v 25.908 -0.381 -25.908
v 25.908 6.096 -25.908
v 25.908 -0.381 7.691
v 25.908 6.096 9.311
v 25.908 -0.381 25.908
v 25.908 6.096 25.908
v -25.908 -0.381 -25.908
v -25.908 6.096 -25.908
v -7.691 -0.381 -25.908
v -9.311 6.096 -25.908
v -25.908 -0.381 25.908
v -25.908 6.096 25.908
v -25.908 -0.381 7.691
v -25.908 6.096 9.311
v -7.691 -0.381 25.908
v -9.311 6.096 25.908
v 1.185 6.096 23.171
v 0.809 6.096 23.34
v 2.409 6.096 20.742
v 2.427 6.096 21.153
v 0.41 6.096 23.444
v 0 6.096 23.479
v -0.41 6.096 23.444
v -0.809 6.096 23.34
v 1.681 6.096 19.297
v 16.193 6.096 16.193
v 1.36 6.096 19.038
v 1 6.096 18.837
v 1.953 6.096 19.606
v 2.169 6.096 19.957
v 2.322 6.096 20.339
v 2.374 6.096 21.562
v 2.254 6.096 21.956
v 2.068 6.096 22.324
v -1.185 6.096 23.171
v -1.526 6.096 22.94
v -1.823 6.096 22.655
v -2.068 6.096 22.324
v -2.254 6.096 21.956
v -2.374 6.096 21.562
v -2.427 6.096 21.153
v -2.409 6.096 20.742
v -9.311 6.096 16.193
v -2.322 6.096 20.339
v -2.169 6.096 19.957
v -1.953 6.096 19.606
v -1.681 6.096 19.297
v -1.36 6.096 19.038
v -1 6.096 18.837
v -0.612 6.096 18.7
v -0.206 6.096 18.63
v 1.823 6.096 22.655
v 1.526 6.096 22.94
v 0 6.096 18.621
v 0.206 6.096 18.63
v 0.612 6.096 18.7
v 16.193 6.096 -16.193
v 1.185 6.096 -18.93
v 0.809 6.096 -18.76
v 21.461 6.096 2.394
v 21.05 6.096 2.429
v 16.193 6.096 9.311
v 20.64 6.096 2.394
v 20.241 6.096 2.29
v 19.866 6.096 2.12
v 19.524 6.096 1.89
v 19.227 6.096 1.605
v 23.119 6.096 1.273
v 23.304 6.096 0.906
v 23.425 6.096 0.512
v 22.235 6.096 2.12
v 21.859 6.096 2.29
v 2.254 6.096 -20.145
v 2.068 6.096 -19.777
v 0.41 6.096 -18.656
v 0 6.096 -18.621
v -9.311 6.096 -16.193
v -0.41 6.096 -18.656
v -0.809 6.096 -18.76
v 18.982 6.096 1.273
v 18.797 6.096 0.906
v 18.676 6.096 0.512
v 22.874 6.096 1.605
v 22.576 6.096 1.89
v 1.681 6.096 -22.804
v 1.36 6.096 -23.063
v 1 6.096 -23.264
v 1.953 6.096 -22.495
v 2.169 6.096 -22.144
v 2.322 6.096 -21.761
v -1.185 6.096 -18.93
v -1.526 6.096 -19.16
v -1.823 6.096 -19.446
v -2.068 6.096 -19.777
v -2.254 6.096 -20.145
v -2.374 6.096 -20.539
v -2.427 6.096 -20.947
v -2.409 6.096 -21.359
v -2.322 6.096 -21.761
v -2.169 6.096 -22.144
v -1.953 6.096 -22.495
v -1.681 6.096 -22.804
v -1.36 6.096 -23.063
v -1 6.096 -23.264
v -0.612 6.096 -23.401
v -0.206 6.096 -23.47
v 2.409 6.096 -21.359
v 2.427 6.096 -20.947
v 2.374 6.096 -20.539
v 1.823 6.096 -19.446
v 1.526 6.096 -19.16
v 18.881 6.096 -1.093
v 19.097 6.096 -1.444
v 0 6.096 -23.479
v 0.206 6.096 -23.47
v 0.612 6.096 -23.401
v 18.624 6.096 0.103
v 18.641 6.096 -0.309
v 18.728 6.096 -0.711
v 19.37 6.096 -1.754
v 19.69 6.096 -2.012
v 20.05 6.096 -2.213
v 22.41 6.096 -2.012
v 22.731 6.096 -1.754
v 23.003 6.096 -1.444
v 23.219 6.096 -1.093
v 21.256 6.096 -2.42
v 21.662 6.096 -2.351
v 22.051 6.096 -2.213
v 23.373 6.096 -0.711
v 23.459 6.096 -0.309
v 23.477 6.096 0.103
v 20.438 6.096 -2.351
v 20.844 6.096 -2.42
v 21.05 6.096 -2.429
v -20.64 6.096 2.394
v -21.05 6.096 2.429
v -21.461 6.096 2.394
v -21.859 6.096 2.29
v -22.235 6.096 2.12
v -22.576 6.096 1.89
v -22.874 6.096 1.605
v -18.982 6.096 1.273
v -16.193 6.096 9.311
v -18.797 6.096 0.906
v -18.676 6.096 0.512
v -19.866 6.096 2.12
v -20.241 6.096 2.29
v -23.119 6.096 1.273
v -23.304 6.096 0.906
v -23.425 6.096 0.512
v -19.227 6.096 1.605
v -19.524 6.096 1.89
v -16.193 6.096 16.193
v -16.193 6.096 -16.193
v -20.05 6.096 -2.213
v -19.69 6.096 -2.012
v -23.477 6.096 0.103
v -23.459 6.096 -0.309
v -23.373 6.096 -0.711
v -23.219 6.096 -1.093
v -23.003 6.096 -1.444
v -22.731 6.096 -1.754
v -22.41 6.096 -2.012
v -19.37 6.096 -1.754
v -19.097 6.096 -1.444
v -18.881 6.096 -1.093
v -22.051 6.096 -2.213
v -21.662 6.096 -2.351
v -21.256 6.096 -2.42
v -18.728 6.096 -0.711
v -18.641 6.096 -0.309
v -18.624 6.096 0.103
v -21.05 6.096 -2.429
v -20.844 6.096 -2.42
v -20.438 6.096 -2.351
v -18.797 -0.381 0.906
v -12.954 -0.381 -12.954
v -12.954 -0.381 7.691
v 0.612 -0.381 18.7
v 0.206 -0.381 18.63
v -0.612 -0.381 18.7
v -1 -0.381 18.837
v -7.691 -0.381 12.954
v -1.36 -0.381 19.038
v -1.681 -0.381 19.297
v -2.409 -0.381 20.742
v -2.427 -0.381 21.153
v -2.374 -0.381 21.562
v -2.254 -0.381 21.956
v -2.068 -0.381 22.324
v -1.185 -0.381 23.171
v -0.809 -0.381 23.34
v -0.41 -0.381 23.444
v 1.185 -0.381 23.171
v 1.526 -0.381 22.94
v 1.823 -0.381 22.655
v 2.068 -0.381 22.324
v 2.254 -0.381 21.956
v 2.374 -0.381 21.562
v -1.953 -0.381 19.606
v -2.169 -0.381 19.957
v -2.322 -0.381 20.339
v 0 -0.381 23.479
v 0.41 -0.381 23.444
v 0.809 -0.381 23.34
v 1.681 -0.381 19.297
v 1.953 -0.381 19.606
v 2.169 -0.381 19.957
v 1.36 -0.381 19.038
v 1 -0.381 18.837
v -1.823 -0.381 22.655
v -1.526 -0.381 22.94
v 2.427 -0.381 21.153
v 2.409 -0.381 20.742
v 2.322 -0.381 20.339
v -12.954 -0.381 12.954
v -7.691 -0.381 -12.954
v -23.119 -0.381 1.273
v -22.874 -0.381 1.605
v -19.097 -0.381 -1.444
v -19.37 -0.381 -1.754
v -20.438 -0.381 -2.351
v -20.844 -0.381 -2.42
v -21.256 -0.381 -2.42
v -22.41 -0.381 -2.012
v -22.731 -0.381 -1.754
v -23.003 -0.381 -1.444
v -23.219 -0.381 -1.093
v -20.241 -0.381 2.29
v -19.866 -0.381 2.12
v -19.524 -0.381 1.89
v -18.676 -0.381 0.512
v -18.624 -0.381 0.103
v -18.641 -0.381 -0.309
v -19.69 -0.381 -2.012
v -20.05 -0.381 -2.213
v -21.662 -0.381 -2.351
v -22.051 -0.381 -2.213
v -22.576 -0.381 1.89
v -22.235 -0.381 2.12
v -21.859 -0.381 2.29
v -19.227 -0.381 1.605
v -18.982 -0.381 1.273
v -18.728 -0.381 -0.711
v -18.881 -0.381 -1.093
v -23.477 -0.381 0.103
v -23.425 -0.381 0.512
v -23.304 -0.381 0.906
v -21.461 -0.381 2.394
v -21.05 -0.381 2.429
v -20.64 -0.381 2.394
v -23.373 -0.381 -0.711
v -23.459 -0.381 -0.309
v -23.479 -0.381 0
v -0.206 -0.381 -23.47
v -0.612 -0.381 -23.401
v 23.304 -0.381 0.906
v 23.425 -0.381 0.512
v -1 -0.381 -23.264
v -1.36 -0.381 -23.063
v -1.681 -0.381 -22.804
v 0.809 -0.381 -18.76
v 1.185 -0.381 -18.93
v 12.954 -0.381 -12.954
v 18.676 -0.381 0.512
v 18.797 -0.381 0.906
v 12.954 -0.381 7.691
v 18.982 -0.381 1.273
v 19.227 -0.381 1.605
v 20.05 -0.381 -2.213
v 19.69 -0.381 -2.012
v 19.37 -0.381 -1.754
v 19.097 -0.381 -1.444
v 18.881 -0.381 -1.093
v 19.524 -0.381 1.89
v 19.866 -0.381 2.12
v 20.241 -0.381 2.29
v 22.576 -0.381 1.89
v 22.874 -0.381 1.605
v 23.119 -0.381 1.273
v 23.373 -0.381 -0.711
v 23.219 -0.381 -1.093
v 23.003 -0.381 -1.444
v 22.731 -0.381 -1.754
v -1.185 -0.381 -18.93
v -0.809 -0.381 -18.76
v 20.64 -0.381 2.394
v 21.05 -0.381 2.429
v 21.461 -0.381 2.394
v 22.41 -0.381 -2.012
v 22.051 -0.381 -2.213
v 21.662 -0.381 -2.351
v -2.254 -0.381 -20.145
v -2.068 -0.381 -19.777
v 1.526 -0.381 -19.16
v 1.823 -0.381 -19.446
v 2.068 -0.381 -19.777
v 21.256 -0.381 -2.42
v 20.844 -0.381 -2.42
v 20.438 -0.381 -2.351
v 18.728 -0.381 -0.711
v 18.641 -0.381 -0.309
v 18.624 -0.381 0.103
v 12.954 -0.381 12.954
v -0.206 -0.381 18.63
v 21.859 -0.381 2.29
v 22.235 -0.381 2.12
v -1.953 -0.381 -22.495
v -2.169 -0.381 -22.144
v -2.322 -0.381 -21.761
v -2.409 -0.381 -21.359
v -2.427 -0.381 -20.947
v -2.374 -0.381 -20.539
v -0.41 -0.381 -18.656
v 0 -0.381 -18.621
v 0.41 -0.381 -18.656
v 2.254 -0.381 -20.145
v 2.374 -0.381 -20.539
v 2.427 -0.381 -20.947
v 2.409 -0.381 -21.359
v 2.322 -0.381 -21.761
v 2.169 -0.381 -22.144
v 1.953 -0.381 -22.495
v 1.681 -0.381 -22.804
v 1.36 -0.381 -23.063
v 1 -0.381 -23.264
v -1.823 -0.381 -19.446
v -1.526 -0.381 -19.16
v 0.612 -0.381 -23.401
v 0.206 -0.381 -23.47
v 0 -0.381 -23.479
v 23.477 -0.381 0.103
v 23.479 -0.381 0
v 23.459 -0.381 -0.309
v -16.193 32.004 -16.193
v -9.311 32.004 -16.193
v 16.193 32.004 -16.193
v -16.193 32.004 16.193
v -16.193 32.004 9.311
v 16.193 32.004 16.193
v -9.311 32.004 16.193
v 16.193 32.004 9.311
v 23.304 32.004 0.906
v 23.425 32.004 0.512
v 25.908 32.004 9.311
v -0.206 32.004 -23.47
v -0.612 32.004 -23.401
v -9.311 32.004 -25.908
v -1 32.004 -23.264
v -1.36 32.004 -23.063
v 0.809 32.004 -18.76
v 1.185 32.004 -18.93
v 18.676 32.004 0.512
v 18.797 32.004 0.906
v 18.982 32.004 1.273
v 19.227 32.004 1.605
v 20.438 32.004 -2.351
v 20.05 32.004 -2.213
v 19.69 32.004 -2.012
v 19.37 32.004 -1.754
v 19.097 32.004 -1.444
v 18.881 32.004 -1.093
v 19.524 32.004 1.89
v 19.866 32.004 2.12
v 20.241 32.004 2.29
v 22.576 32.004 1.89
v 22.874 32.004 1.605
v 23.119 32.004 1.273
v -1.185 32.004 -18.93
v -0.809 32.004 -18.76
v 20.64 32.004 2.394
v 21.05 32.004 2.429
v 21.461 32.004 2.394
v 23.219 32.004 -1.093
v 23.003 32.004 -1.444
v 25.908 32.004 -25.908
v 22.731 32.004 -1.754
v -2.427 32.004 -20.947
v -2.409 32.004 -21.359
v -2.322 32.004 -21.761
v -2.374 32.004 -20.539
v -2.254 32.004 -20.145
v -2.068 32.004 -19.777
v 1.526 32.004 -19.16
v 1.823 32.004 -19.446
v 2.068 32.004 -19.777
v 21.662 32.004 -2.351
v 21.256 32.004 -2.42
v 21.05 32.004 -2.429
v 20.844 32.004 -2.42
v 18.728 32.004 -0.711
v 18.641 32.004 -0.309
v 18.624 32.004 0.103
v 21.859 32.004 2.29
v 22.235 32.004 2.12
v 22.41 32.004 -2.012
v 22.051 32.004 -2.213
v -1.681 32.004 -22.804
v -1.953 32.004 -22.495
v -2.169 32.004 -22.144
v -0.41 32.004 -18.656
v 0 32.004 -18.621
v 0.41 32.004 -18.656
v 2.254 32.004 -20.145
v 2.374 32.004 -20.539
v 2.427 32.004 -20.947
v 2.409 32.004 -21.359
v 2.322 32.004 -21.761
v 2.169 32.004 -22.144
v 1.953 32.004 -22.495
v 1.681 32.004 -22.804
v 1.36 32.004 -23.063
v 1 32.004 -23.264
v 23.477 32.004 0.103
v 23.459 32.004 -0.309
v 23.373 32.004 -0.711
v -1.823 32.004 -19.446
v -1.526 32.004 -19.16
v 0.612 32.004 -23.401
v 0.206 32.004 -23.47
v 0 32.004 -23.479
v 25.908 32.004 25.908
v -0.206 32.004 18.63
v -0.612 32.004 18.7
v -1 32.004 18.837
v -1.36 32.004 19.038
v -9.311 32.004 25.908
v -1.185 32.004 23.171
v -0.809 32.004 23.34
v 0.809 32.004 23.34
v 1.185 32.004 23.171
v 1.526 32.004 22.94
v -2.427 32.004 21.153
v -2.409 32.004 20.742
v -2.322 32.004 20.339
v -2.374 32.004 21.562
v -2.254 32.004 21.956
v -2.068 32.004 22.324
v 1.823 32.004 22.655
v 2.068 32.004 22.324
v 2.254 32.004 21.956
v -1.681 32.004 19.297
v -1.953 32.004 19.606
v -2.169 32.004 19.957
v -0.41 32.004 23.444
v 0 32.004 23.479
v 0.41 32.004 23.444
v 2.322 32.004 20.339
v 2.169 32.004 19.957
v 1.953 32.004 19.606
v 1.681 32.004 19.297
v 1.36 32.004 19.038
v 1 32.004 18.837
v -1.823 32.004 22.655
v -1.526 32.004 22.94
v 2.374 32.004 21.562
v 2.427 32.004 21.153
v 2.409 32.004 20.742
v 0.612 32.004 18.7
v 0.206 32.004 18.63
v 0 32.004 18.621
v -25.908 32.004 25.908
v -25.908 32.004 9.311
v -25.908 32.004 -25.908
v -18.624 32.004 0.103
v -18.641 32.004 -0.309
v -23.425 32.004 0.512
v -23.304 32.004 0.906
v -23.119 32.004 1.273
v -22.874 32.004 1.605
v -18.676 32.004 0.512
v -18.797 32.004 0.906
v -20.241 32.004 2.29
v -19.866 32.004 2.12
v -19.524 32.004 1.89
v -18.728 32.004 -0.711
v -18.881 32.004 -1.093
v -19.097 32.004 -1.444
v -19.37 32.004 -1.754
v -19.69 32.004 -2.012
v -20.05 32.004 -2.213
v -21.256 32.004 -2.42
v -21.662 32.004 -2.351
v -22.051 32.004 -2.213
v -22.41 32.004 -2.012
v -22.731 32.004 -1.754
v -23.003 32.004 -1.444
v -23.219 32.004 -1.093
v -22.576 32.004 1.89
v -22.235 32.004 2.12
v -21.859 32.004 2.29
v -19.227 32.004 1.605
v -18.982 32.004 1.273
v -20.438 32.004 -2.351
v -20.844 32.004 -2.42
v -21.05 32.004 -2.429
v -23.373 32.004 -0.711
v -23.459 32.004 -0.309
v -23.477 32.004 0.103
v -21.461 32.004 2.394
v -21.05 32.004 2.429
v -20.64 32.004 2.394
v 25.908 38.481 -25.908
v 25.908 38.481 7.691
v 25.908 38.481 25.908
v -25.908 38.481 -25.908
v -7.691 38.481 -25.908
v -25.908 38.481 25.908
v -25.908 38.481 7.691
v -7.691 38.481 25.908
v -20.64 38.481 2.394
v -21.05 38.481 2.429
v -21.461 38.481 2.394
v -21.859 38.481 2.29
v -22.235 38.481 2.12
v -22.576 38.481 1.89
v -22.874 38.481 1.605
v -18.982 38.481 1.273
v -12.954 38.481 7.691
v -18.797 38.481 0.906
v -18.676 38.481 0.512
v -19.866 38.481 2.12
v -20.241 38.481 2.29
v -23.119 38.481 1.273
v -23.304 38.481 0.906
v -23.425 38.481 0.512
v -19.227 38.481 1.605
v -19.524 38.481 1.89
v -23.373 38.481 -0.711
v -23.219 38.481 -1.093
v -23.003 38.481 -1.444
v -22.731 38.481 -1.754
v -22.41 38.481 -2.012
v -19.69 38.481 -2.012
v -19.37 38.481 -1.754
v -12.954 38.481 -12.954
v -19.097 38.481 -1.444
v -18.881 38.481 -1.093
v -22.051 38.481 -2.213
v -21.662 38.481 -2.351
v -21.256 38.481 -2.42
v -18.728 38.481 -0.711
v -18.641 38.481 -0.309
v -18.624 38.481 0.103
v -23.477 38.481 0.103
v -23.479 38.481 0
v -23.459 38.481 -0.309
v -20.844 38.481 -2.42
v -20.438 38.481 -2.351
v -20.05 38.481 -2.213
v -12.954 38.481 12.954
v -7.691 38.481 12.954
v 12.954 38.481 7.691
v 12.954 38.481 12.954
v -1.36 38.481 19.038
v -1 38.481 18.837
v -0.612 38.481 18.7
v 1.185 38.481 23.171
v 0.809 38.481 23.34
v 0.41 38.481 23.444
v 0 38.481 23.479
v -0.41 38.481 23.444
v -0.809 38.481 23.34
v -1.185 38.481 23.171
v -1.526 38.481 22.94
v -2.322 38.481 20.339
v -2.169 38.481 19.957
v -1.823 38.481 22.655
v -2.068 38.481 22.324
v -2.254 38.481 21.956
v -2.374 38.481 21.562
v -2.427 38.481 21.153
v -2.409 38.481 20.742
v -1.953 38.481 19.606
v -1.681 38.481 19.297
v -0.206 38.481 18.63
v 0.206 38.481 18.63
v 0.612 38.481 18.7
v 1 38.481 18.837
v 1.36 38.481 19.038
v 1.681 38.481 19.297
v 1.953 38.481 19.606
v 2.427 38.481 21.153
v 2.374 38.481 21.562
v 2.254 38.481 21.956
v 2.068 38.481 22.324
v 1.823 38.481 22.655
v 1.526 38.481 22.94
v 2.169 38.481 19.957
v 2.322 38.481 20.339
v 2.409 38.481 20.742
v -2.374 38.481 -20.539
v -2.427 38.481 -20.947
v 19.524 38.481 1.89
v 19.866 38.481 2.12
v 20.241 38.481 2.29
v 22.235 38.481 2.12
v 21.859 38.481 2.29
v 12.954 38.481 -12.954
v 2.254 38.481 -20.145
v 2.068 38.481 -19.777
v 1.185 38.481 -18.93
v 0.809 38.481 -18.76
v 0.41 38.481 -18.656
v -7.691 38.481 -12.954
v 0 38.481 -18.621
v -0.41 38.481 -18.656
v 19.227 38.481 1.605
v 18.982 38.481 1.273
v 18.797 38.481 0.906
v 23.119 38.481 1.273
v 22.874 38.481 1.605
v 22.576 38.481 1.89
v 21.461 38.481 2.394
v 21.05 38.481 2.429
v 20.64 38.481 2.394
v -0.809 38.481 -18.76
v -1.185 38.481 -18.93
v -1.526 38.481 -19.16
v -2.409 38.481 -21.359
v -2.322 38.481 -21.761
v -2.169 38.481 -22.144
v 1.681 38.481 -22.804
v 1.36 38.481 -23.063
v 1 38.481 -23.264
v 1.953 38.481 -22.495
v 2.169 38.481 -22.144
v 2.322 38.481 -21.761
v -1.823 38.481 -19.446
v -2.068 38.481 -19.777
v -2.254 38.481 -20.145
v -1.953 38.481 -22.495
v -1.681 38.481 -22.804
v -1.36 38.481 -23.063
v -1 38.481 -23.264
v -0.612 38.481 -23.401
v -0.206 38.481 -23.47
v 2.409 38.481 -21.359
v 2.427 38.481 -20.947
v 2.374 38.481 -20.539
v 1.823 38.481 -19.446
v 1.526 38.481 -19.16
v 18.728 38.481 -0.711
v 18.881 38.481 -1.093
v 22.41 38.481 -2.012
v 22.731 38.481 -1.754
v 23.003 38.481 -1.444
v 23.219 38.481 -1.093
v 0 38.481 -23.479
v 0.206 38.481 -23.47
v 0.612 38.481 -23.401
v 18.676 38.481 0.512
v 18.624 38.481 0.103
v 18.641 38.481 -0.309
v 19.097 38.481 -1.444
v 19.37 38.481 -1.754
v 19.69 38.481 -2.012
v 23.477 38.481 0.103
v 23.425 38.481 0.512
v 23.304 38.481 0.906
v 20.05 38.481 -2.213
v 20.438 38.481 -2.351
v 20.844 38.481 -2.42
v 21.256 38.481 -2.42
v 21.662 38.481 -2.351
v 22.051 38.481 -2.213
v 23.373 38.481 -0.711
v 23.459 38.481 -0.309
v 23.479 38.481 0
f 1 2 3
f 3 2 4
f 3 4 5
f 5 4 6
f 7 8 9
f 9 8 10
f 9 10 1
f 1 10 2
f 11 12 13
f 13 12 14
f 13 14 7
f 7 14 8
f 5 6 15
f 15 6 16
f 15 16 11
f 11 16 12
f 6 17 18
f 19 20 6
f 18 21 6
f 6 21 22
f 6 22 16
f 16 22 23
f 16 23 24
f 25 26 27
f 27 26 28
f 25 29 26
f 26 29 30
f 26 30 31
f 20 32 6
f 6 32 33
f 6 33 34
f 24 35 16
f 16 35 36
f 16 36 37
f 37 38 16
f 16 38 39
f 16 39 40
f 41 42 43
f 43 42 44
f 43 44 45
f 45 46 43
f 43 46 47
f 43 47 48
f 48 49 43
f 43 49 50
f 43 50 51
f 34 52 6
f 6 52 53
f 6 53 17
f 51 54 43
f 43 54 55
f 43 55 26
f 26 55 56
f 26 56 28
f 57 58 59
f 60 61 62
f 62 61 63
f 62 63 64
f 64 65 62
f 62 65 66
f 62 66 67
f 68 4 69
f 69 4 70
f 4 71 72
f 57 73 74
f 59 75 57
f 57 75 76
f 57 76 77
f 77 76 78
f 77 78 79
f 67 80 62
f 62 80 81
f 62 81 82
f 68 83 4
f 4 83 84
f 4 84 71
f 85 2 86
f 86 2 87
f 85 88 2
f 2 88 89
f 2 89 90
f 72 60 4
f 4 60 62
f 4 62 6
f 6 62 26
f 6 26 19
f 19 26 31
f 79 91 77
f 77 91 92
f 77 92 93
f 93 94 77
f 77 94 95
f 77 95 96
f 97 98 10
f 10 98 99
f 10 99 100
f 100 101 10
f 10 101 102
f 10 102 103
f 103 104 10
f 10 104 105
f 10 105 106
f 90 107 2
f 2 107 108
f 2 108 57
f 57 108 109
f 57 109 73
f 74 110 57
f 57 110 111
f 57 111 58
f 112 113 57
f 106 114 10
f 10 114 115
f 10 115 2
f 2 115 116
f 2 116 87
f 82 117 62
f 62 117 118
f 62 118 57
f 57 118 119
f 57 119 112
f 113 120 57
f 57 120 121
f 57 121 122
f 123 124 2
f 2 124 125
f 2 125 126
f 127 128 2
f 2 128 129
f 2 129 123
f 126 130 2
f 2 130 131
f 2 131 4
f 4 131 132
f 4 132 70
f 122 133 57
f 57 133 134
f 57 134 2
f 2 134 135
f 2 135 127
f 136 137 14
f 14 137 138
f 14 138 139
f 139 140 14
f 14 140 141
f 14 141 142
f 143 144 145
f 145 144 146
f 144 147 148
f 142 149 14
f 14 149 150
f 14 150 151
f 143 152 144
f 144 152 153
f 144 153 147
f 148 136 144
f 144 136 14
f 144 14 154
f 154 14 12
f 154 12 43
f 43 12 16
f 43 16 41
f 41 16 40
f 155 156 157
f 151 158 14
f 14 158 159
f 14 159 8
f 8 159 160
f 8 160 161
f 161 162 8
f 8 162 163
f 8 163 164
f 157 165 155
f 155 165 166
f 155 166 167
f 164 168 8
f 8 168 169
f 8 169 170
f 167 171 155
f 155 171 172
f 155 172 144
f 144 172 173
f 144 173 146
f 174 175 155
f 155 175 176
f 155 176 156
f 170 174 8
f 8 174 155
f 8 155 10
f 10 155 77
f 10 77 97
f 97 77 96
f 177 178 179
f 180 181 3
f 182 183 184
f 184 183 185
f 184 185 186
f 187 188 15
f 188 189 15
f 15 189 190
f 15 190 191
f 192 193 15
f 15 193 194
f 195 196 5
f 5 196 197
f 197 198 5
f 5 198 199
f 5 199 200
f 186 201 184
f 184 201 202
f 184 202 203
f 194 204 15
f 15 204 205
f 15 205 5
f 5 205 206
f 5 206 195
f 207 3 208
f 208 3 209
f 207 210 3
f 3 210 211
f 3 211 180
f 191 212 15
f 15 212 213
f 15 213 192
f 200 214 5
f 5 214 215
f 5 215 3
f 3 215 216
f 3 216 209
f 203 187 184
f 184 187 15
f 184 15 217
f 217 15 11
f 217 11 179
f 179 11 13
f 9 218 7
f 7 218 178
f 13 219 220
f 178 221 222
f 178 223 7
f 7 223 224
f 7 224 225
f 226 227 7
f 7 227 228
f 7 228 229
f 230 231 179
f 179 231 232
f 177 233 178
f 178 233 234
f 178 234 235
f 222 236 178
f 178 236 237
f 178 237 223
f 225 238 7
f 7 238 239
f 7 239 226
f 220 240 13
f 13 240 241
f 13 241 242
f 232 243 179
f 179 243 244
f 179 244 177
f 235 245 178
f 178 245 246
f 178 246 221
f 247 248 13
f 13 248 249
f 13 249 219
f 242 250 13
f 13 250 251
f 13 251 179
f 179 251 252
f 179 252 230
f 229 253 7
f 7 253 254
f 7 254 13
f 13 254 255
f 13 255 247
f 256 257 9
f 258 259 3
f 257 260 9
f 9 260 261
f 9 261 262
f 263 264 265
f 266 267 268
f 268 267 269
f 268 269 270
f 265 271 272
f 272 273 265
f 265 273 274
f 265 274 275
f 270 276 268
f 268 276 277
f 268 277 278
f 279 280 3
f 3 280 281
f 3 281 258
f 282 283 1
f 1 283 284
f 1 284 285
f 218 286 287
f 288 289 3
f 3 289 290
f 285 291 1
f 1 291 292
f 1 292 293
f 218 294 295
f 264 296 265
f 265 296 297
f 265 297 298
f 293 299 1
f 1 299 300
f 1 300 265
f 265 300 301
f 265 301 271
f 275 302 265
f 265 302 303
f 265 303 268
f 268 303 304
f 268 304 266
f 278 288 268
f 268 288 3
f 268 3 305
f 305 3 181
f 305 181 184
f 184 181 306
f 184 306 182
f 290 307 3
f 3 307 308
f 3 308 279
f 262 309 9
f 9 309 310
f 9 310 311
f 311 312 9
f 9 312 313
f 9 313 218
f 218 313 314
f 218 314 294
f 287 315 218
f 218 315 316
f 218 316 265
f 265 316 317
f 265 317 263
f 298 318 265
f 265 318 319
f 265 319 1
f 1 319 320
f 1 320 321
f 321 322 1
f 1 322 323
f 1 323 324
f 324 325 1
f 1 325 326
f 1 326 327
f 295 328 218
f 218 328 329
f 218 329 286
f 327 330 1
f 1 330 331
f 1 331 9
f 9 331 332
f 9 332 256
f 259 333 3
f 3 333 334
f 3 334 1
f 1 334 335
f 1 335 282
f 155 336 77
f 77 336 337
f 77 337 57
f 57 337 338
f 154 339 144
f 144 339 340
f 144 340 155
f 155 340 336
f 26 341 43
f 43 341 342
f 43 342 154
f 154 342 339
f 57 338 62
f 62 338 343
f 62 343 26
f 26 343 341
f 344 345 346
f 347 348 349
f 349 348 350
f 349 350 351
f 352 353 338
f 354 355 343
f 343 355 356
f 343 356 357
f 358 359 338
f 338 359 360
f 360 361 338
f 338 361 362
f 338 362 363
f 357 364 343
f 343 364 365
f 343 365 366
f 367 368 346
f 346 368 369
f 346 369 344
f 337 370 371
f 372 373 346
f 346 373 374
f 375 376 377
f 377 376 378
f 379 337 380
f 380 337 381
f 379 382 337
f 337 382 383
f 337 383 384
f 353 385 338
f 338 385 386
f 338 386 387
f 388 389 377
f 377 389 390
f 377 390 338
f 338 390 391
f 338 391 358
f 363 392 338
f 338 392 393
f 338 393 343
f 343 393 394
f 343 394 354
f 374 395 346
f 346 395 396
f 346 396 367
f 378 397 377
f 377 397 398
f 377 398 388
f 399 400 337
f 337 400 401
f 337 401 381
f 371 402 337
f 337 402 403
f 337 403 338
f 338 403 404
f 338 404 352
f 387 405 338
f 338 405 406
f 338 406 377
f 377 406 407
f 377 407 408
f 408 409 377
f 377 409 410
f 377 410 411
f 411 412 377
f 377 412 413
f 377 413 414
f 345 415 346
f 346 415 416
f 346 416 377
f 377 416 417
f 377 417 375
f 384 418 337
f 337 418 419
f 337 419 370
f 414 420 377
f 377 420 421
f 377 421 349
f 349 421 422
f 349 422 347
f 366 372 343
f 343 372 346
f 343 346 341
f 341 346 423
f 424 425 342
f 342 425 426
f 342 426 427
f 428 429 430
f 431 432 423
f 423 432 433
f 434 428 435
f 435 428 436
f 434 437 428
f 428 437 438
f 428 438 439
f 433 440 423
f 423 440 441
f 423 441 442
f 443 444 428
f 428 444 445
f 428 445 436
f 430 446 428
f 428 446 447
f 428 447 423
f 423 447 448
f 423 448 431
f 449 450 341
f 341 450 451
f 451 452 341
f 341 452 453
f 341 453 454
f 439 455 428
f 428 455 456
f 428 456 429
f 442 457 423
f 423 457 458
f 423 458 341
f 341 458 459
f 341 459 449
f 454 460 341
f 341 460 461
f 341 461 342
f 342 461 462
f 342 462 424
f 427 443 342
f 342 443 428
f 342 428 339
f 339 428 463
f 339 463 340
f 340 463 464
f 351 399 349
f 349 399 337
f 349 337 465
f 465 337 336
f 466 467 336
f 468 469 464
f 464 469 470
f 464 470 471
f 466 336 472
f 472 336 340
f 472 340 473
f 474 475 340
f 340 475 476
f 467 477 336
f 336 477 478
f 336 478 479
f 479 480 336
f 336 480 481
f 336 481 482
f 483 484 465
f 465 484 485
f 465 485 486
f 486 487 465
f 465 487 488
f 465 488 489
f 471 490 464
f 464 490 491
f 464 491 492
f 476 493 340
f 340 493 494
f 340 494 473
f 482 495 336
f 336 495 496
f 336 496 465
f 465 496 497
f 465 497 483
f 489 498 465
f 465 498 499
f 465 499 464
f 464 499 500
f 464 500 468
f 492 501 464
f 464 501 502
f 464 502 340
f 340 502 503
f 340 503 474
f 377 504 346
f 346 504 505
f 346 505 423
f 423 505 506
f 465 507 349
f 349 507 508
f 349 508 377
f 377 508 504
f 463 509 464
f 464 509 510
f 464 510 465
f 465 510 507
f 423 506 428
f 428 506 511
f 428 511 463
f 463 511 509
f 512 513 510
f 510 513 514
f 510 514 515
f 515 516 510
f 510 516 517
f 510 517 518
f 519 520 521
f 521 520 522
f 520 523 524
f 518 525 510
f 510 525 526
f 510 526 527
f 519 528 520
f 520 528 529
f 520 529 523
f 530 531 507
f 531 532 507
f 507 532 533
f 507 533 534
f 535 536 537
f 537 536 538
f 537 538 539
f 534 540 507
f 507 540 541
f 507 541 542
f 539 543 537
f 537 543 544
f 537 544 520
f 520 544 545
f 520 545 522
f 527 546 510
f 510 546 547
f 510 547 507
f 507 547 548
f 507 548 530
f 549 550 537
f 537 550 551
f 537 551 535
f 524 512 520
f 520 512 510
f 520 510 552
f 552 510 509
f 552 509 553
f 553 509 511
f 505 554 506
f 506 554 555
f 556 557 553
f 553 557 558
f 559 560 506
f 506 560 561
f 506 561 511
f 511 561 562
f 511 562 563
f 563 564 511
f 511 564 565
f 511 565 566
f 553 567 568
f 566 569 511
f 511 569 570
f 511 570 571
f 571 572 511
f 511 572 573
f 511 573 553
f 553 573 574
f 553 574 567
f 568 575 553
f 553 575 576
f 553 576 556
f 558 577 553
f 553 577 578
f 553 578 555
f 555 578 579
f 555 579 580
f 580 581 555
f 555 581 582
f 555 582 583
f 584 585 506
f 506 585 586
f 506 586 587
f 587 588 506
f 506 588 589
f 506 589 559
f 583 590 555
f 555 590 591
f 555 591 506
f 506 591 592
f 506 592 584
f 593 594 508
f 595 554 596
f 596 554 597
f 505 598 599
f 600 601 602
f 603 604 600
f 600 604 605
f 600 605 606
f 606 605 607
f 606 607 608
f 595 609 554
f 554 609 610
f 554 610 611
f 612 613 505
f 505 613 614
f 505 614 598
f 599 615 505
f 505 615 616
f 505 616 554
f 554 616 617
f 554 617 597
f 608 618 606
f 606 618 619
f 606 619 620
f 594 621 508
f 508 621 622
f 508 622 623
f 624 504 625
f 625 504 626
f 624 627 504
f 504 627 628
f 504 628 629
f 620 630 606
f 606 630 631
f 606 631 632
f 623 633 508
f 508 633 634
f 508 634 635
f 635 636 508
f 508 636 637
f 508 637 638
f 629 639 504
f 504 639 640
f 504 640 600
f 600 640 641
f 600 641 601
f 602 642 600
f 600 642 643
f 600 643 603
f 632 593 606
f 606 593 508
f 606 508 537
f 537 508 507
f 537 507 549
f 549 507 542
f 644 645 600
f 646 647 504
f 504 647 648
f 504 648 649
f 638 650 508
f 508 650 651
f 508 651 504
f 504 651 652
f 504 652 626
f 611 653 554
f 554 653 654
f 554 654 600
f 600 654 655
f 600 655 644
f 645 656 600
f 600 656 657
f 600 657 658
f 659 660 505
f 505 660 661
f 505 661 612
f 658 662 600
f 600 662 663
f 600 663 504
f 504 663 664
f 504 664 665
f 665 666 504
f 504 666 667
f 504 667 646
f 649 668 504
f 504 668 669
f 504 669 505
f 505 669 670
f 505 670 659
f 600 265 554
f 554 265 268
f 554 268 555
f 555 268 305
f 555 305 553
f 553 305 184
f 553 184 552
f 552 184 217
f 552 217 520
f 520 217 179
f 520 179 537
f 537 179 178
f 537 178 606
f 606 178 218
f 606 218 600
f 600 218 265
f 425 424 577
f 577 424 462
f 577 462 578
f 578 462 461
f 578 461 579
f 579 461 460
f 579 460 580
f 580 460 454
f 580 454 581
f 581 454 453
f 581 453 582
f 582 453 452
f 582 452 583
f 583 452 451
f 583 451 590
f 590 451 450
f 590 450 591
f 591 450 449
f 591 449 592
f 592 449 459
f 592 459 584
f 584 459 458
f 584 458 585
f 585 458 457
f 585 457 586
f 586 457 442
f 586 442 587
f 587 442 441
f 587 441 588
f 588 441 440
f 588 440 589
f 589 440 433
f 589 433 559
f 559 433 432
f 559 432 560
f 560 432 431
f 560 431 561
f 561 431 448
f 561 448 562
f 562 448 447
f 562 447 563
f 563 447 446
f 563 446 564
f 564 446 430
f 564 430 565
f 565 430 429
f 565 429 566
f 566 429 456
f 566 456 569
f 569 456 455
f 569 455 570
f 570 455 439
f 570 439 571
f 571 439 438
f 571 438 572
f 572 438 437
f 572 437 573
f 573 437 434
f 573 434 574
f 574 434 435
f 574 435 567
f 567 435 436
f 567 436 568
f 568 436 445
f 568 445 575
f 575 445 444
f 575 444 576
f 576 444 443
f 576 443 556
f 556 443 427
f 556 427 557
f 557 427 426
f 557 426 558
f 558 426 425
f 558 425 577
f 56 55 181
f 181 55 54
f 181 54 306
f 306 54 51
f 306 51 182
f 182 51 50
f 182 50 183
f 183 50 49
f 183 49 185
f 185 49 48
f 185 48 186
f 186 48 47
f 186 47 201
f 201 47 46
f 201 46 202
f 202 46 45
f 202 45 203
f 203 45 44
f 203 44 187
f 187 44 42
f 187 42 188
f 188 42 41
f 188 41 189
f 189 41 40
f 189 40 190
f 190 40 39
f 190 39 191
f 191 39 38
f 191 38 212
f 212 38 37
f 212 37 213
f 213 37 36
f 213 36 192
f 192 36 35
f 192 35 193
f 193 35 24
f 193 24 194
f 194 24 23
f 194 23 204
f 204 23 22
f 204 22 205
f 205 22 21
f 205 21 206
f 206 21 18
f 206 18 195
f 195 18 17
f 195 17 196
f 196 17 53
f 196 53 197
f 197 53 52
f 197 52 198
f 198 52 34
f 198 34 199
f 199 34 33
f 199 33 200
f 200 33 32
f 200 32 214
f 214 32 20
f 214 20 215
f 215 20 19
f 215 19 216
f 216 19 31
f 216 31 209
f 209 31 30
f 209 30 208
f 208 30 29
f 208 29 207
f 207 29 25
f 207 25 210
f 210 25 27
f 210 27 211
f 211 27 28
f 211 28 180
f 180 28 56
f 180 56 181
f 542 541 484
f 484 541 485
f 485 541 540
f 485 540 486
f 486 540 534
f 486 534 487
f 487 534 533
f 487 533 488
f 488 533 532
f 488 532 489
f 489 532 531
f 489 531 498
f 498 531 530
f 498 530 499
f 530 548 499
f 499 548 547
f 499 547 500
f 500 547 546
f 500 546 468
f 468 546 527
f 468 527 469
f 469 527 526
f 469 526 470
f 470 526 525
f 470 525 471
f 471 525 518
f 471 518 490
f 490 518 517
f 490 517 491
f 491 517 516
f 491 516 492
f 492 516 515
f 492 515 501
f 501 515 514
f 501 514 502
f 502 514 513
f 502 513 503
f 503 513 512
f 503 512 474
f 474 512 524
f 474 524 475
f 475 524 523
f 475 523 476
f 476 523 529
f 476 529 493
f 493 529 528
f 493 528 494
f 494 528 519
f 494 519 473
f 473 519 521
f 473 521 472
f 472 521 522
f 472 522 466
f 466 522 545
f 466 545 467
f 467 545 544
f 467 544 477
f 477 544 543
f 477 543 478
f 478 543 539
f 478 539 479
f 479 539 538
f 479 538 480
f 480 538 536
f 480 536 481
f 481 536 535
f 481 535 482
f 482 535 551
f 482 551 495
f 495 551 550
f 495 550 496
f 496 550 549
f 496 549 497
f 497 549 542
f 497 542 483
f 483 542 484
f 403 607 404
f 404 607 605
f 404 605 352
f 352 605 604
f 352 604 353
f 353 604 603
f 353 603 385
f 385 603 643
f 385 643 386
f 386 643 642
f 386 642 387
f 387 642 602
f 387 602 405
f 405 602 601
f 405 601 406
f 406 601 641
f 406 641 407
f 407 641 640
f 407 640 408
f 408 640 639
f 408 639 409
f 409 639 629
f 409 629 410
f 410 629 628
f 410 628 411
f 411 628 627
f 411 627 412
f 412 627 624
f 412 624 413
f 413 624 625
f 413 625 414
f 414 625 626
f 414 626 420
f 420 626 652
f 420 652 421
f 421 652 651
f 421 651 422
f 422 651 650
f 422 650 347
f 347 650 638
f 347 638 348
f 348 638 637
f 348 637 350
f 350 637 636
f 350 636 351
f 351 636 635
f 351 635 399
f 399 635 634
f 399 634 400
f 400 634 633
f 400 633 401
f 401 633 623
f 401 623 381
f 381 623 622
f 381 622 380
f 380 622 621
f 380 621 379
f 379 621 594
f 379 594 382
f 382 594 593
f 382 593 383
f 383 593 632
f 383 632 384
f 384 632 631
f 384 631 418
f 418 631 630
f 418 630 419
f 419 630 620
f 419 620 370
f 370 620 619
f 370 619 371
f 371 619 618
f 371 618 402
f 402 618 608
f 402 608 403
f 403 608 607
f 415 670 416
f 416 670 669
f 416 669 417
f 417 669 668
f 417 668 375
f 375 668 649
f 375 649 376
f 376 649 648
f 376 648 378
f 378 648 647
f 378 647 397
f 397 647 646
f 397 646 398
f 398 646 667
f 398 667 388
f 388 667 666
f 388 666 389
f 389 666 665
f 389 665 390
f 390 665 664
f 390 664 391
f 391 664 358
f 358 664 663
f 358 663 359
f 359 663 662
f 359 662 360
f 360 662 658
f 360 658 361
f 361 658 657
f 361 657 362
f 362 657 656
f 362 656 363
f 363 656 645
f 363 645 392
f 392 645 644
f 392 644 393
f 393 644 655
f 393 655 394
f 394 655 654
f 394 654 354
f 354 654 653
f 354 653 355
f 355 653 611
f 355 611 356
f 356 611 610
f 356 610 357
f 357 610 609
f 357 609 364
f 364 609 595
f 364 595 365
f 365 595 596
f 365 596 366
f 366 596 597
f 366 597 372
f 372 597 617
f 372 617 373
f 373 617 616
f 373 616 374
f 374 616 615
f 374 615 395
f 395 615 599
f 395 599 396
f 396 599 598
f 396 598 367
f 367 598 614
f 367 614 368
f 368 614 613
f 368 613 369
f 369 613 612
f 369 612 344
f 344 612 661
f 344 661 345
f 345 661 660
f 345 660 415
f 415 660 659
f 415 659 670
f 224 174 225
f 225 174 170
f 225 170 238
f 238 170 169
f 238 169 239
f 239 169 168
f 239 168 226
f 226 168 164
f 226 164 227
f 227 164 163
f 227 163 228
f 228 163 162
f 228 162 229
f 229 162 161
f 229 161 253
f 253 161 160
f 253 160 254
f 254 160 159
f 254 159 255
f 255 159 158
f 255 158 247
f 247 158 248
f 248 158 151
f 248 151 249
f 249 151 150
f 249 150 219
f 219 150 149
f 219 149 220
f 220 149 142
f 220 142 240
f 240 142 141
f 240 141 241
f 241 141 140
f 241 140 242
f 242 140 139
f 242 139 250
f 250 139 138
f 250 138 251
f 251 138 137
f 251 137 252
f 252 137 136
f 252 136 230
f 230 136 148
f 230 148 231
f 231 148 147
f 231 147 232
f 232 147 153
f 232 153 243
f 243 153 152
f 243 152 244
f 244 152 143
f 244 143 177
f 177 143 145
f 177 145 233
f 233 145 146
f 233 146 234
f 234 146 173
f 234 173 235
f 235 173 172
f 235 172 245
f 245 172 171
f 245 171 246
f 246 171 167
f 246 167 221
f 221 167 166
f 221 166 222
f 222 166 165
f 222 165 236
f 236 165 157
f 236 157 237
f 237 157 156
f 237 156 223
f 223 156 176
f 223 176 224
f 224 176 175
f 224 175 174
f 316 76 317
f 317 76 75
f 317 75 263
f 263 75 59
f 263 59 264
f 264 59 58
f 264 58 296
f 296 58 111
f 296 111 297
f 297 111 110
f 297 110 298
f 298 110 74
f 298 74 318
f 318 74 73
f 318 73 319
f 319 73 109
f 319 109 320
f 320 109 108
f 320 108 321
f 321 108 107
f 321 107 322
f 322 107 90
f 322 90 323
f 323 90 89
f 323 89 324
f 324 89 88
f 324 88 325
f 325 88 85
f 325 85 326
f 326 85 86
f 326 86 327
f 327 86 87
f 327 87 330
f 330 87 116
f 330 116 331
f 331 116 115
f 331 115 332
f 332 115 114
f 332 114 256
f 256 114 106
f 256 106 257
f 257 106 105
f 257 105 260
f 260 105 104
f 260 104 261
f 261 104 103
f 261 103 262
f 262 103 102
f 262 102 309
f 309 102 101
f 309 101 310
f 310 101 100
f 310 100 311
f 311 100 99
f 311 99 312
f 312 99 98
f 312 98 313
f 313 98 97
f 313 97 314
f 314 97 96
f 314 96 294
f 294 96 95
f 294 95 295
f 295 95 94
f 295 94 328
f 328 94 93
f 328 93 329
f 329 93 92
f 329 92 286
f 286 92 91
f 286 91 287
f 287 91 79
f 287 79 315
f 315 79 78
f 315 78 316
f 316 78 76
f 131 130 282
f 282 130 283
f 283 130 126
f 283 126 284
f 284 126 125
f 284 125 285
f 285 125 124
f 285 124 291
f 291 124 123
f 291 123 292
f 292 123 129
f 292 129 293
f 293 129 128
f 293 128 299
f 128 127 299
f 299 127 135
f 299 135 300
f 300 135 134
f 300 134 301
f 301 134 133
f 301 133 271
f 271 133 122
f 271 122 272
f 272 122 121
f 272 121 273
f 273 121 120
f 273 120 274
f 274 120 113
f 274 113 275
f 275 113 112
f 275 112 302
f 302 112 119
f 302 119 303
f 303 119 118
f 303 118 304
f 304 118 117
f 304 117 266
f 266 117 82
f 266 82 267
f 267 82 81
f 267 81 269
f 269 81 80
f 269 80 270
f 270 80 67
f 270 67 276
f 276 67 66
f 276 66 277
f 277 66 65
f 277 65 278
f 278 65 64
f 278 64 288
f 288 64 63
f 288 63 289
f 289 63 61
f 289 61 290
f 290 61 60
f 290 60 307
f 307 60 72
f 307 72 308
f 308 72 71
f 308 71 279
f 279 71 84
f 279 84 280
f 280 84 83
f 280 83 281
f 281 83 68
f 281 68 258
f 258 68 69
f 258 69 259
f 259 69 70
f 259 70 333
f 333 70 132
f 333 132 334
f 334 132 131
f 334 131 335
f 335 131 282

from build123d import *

# Parameters (mm, degrees)
SKETCH1_W           = 50.8
SKETCH1_H           = 50.8
BOSS_EXTRUDE1_DEPTH = 6.35
SKETCH2_W           = 31.75
SKETCH2_H           = 31.75
BOSS_EXTRUDE2_DEPTH = 25.4
SKETCH3_W           = 50.8
SKETCH3_H           = 50.8
BOSS_EXTRUDE3_DEPTH = 6.35
SKETCH4_W           = 25.4
SKETCH4_H           = 25.4
CUT_EXTRUDE1_DEPTH  = 53.363441445
SKETCH5_R           = 2.38125
CUT_EXTRUDE2_DEPTH  = 53.363441445
CIRPATTERN1_COUNT   = 4
SCALE1_SCALE        = 1.02


with BuildPart() as part:
    # Sketch1 → Boss-Extrude1 (new body)
    with BuildSketch(Plane(origin=(0, 0, 0), x_dir=(1, 0, 0), z_dir=(0, 1, 0))):
        Rectangle(SKETCH1_W, SKETCH1_H)
    extrude(amount=BOSS_EXTRUDE1_DEPTH)

    # Sketch2 → Boss-Extrude2 (add)
    with BuildSketch(Plane(origin=(0, 6.35, 0), x_dir=(1, 0, 0), z_dir=(0, 1, 0))):
        Rectangle(SKETCH2_W, SKETCH2_H)
    extrude(amount=BOSS_EXTRUDE2_DEPTH)

    # Sketch3 → Boss-Extrude3 (add)
    with BuildSketch(Plane(origin=(0, 31.75, 0), x_dir=(1, 0, 0), z_dir=(0, 1, 0))):
        Rectangle(SKETCH3_W, SKETCH3_H)
    extrude(amount=BOSS_EXTRUDE3_DEPTH)

    # Sketch4 → Cut-Extrude1 (cut, through all)
    with BuildSketch(Plane(origin=(0, 38.1, 0), x_dir=(1, 0, 0), z_dir=(0, 1, 0))):
        Rectangle(SKETCH4_W, SKETCH4_H)
    extrude(amount=-CUT_EXTRUDE1_DEPTH, mode=Mode.SUBTRACT)

    # Sketch5 → Cut-Extrude2 (cut, through all)
    with BuildSketch(Plane(origin=(0, 38.1, 0), x_dir=(1, 0, 0), z_dir=(0, 1, 0))):
        with Locations((0, -20.6375)):
            Circle(SKETCH5_R)
    cut_extrude2 = extrude(amount=-CUT_EXTRUDE2_DEPTH, mode=Mode.SUBTRACT)

    # CirPattern1: Cut-Extrude2 ×4 about axis
    cirpattern1_axis = Axis((0, -6.908338813, 0), (0, 1, 0))
    for i in range(1, CIRPATTERN1_COUNT):
        add(cut_extrude2.rotate(cirpattern1_axis, i * 360 / CIRPATTERN1_COUNT), mode=Mode.SUBTRACT)


with BuildPart() as part_1:
    # Scale1: scaled about (0, 19.05, 0)
    add(part.part.scale(SCALE1_SCALE).moved(Location((0, -0.381, 0))))


solid = part_1.part
